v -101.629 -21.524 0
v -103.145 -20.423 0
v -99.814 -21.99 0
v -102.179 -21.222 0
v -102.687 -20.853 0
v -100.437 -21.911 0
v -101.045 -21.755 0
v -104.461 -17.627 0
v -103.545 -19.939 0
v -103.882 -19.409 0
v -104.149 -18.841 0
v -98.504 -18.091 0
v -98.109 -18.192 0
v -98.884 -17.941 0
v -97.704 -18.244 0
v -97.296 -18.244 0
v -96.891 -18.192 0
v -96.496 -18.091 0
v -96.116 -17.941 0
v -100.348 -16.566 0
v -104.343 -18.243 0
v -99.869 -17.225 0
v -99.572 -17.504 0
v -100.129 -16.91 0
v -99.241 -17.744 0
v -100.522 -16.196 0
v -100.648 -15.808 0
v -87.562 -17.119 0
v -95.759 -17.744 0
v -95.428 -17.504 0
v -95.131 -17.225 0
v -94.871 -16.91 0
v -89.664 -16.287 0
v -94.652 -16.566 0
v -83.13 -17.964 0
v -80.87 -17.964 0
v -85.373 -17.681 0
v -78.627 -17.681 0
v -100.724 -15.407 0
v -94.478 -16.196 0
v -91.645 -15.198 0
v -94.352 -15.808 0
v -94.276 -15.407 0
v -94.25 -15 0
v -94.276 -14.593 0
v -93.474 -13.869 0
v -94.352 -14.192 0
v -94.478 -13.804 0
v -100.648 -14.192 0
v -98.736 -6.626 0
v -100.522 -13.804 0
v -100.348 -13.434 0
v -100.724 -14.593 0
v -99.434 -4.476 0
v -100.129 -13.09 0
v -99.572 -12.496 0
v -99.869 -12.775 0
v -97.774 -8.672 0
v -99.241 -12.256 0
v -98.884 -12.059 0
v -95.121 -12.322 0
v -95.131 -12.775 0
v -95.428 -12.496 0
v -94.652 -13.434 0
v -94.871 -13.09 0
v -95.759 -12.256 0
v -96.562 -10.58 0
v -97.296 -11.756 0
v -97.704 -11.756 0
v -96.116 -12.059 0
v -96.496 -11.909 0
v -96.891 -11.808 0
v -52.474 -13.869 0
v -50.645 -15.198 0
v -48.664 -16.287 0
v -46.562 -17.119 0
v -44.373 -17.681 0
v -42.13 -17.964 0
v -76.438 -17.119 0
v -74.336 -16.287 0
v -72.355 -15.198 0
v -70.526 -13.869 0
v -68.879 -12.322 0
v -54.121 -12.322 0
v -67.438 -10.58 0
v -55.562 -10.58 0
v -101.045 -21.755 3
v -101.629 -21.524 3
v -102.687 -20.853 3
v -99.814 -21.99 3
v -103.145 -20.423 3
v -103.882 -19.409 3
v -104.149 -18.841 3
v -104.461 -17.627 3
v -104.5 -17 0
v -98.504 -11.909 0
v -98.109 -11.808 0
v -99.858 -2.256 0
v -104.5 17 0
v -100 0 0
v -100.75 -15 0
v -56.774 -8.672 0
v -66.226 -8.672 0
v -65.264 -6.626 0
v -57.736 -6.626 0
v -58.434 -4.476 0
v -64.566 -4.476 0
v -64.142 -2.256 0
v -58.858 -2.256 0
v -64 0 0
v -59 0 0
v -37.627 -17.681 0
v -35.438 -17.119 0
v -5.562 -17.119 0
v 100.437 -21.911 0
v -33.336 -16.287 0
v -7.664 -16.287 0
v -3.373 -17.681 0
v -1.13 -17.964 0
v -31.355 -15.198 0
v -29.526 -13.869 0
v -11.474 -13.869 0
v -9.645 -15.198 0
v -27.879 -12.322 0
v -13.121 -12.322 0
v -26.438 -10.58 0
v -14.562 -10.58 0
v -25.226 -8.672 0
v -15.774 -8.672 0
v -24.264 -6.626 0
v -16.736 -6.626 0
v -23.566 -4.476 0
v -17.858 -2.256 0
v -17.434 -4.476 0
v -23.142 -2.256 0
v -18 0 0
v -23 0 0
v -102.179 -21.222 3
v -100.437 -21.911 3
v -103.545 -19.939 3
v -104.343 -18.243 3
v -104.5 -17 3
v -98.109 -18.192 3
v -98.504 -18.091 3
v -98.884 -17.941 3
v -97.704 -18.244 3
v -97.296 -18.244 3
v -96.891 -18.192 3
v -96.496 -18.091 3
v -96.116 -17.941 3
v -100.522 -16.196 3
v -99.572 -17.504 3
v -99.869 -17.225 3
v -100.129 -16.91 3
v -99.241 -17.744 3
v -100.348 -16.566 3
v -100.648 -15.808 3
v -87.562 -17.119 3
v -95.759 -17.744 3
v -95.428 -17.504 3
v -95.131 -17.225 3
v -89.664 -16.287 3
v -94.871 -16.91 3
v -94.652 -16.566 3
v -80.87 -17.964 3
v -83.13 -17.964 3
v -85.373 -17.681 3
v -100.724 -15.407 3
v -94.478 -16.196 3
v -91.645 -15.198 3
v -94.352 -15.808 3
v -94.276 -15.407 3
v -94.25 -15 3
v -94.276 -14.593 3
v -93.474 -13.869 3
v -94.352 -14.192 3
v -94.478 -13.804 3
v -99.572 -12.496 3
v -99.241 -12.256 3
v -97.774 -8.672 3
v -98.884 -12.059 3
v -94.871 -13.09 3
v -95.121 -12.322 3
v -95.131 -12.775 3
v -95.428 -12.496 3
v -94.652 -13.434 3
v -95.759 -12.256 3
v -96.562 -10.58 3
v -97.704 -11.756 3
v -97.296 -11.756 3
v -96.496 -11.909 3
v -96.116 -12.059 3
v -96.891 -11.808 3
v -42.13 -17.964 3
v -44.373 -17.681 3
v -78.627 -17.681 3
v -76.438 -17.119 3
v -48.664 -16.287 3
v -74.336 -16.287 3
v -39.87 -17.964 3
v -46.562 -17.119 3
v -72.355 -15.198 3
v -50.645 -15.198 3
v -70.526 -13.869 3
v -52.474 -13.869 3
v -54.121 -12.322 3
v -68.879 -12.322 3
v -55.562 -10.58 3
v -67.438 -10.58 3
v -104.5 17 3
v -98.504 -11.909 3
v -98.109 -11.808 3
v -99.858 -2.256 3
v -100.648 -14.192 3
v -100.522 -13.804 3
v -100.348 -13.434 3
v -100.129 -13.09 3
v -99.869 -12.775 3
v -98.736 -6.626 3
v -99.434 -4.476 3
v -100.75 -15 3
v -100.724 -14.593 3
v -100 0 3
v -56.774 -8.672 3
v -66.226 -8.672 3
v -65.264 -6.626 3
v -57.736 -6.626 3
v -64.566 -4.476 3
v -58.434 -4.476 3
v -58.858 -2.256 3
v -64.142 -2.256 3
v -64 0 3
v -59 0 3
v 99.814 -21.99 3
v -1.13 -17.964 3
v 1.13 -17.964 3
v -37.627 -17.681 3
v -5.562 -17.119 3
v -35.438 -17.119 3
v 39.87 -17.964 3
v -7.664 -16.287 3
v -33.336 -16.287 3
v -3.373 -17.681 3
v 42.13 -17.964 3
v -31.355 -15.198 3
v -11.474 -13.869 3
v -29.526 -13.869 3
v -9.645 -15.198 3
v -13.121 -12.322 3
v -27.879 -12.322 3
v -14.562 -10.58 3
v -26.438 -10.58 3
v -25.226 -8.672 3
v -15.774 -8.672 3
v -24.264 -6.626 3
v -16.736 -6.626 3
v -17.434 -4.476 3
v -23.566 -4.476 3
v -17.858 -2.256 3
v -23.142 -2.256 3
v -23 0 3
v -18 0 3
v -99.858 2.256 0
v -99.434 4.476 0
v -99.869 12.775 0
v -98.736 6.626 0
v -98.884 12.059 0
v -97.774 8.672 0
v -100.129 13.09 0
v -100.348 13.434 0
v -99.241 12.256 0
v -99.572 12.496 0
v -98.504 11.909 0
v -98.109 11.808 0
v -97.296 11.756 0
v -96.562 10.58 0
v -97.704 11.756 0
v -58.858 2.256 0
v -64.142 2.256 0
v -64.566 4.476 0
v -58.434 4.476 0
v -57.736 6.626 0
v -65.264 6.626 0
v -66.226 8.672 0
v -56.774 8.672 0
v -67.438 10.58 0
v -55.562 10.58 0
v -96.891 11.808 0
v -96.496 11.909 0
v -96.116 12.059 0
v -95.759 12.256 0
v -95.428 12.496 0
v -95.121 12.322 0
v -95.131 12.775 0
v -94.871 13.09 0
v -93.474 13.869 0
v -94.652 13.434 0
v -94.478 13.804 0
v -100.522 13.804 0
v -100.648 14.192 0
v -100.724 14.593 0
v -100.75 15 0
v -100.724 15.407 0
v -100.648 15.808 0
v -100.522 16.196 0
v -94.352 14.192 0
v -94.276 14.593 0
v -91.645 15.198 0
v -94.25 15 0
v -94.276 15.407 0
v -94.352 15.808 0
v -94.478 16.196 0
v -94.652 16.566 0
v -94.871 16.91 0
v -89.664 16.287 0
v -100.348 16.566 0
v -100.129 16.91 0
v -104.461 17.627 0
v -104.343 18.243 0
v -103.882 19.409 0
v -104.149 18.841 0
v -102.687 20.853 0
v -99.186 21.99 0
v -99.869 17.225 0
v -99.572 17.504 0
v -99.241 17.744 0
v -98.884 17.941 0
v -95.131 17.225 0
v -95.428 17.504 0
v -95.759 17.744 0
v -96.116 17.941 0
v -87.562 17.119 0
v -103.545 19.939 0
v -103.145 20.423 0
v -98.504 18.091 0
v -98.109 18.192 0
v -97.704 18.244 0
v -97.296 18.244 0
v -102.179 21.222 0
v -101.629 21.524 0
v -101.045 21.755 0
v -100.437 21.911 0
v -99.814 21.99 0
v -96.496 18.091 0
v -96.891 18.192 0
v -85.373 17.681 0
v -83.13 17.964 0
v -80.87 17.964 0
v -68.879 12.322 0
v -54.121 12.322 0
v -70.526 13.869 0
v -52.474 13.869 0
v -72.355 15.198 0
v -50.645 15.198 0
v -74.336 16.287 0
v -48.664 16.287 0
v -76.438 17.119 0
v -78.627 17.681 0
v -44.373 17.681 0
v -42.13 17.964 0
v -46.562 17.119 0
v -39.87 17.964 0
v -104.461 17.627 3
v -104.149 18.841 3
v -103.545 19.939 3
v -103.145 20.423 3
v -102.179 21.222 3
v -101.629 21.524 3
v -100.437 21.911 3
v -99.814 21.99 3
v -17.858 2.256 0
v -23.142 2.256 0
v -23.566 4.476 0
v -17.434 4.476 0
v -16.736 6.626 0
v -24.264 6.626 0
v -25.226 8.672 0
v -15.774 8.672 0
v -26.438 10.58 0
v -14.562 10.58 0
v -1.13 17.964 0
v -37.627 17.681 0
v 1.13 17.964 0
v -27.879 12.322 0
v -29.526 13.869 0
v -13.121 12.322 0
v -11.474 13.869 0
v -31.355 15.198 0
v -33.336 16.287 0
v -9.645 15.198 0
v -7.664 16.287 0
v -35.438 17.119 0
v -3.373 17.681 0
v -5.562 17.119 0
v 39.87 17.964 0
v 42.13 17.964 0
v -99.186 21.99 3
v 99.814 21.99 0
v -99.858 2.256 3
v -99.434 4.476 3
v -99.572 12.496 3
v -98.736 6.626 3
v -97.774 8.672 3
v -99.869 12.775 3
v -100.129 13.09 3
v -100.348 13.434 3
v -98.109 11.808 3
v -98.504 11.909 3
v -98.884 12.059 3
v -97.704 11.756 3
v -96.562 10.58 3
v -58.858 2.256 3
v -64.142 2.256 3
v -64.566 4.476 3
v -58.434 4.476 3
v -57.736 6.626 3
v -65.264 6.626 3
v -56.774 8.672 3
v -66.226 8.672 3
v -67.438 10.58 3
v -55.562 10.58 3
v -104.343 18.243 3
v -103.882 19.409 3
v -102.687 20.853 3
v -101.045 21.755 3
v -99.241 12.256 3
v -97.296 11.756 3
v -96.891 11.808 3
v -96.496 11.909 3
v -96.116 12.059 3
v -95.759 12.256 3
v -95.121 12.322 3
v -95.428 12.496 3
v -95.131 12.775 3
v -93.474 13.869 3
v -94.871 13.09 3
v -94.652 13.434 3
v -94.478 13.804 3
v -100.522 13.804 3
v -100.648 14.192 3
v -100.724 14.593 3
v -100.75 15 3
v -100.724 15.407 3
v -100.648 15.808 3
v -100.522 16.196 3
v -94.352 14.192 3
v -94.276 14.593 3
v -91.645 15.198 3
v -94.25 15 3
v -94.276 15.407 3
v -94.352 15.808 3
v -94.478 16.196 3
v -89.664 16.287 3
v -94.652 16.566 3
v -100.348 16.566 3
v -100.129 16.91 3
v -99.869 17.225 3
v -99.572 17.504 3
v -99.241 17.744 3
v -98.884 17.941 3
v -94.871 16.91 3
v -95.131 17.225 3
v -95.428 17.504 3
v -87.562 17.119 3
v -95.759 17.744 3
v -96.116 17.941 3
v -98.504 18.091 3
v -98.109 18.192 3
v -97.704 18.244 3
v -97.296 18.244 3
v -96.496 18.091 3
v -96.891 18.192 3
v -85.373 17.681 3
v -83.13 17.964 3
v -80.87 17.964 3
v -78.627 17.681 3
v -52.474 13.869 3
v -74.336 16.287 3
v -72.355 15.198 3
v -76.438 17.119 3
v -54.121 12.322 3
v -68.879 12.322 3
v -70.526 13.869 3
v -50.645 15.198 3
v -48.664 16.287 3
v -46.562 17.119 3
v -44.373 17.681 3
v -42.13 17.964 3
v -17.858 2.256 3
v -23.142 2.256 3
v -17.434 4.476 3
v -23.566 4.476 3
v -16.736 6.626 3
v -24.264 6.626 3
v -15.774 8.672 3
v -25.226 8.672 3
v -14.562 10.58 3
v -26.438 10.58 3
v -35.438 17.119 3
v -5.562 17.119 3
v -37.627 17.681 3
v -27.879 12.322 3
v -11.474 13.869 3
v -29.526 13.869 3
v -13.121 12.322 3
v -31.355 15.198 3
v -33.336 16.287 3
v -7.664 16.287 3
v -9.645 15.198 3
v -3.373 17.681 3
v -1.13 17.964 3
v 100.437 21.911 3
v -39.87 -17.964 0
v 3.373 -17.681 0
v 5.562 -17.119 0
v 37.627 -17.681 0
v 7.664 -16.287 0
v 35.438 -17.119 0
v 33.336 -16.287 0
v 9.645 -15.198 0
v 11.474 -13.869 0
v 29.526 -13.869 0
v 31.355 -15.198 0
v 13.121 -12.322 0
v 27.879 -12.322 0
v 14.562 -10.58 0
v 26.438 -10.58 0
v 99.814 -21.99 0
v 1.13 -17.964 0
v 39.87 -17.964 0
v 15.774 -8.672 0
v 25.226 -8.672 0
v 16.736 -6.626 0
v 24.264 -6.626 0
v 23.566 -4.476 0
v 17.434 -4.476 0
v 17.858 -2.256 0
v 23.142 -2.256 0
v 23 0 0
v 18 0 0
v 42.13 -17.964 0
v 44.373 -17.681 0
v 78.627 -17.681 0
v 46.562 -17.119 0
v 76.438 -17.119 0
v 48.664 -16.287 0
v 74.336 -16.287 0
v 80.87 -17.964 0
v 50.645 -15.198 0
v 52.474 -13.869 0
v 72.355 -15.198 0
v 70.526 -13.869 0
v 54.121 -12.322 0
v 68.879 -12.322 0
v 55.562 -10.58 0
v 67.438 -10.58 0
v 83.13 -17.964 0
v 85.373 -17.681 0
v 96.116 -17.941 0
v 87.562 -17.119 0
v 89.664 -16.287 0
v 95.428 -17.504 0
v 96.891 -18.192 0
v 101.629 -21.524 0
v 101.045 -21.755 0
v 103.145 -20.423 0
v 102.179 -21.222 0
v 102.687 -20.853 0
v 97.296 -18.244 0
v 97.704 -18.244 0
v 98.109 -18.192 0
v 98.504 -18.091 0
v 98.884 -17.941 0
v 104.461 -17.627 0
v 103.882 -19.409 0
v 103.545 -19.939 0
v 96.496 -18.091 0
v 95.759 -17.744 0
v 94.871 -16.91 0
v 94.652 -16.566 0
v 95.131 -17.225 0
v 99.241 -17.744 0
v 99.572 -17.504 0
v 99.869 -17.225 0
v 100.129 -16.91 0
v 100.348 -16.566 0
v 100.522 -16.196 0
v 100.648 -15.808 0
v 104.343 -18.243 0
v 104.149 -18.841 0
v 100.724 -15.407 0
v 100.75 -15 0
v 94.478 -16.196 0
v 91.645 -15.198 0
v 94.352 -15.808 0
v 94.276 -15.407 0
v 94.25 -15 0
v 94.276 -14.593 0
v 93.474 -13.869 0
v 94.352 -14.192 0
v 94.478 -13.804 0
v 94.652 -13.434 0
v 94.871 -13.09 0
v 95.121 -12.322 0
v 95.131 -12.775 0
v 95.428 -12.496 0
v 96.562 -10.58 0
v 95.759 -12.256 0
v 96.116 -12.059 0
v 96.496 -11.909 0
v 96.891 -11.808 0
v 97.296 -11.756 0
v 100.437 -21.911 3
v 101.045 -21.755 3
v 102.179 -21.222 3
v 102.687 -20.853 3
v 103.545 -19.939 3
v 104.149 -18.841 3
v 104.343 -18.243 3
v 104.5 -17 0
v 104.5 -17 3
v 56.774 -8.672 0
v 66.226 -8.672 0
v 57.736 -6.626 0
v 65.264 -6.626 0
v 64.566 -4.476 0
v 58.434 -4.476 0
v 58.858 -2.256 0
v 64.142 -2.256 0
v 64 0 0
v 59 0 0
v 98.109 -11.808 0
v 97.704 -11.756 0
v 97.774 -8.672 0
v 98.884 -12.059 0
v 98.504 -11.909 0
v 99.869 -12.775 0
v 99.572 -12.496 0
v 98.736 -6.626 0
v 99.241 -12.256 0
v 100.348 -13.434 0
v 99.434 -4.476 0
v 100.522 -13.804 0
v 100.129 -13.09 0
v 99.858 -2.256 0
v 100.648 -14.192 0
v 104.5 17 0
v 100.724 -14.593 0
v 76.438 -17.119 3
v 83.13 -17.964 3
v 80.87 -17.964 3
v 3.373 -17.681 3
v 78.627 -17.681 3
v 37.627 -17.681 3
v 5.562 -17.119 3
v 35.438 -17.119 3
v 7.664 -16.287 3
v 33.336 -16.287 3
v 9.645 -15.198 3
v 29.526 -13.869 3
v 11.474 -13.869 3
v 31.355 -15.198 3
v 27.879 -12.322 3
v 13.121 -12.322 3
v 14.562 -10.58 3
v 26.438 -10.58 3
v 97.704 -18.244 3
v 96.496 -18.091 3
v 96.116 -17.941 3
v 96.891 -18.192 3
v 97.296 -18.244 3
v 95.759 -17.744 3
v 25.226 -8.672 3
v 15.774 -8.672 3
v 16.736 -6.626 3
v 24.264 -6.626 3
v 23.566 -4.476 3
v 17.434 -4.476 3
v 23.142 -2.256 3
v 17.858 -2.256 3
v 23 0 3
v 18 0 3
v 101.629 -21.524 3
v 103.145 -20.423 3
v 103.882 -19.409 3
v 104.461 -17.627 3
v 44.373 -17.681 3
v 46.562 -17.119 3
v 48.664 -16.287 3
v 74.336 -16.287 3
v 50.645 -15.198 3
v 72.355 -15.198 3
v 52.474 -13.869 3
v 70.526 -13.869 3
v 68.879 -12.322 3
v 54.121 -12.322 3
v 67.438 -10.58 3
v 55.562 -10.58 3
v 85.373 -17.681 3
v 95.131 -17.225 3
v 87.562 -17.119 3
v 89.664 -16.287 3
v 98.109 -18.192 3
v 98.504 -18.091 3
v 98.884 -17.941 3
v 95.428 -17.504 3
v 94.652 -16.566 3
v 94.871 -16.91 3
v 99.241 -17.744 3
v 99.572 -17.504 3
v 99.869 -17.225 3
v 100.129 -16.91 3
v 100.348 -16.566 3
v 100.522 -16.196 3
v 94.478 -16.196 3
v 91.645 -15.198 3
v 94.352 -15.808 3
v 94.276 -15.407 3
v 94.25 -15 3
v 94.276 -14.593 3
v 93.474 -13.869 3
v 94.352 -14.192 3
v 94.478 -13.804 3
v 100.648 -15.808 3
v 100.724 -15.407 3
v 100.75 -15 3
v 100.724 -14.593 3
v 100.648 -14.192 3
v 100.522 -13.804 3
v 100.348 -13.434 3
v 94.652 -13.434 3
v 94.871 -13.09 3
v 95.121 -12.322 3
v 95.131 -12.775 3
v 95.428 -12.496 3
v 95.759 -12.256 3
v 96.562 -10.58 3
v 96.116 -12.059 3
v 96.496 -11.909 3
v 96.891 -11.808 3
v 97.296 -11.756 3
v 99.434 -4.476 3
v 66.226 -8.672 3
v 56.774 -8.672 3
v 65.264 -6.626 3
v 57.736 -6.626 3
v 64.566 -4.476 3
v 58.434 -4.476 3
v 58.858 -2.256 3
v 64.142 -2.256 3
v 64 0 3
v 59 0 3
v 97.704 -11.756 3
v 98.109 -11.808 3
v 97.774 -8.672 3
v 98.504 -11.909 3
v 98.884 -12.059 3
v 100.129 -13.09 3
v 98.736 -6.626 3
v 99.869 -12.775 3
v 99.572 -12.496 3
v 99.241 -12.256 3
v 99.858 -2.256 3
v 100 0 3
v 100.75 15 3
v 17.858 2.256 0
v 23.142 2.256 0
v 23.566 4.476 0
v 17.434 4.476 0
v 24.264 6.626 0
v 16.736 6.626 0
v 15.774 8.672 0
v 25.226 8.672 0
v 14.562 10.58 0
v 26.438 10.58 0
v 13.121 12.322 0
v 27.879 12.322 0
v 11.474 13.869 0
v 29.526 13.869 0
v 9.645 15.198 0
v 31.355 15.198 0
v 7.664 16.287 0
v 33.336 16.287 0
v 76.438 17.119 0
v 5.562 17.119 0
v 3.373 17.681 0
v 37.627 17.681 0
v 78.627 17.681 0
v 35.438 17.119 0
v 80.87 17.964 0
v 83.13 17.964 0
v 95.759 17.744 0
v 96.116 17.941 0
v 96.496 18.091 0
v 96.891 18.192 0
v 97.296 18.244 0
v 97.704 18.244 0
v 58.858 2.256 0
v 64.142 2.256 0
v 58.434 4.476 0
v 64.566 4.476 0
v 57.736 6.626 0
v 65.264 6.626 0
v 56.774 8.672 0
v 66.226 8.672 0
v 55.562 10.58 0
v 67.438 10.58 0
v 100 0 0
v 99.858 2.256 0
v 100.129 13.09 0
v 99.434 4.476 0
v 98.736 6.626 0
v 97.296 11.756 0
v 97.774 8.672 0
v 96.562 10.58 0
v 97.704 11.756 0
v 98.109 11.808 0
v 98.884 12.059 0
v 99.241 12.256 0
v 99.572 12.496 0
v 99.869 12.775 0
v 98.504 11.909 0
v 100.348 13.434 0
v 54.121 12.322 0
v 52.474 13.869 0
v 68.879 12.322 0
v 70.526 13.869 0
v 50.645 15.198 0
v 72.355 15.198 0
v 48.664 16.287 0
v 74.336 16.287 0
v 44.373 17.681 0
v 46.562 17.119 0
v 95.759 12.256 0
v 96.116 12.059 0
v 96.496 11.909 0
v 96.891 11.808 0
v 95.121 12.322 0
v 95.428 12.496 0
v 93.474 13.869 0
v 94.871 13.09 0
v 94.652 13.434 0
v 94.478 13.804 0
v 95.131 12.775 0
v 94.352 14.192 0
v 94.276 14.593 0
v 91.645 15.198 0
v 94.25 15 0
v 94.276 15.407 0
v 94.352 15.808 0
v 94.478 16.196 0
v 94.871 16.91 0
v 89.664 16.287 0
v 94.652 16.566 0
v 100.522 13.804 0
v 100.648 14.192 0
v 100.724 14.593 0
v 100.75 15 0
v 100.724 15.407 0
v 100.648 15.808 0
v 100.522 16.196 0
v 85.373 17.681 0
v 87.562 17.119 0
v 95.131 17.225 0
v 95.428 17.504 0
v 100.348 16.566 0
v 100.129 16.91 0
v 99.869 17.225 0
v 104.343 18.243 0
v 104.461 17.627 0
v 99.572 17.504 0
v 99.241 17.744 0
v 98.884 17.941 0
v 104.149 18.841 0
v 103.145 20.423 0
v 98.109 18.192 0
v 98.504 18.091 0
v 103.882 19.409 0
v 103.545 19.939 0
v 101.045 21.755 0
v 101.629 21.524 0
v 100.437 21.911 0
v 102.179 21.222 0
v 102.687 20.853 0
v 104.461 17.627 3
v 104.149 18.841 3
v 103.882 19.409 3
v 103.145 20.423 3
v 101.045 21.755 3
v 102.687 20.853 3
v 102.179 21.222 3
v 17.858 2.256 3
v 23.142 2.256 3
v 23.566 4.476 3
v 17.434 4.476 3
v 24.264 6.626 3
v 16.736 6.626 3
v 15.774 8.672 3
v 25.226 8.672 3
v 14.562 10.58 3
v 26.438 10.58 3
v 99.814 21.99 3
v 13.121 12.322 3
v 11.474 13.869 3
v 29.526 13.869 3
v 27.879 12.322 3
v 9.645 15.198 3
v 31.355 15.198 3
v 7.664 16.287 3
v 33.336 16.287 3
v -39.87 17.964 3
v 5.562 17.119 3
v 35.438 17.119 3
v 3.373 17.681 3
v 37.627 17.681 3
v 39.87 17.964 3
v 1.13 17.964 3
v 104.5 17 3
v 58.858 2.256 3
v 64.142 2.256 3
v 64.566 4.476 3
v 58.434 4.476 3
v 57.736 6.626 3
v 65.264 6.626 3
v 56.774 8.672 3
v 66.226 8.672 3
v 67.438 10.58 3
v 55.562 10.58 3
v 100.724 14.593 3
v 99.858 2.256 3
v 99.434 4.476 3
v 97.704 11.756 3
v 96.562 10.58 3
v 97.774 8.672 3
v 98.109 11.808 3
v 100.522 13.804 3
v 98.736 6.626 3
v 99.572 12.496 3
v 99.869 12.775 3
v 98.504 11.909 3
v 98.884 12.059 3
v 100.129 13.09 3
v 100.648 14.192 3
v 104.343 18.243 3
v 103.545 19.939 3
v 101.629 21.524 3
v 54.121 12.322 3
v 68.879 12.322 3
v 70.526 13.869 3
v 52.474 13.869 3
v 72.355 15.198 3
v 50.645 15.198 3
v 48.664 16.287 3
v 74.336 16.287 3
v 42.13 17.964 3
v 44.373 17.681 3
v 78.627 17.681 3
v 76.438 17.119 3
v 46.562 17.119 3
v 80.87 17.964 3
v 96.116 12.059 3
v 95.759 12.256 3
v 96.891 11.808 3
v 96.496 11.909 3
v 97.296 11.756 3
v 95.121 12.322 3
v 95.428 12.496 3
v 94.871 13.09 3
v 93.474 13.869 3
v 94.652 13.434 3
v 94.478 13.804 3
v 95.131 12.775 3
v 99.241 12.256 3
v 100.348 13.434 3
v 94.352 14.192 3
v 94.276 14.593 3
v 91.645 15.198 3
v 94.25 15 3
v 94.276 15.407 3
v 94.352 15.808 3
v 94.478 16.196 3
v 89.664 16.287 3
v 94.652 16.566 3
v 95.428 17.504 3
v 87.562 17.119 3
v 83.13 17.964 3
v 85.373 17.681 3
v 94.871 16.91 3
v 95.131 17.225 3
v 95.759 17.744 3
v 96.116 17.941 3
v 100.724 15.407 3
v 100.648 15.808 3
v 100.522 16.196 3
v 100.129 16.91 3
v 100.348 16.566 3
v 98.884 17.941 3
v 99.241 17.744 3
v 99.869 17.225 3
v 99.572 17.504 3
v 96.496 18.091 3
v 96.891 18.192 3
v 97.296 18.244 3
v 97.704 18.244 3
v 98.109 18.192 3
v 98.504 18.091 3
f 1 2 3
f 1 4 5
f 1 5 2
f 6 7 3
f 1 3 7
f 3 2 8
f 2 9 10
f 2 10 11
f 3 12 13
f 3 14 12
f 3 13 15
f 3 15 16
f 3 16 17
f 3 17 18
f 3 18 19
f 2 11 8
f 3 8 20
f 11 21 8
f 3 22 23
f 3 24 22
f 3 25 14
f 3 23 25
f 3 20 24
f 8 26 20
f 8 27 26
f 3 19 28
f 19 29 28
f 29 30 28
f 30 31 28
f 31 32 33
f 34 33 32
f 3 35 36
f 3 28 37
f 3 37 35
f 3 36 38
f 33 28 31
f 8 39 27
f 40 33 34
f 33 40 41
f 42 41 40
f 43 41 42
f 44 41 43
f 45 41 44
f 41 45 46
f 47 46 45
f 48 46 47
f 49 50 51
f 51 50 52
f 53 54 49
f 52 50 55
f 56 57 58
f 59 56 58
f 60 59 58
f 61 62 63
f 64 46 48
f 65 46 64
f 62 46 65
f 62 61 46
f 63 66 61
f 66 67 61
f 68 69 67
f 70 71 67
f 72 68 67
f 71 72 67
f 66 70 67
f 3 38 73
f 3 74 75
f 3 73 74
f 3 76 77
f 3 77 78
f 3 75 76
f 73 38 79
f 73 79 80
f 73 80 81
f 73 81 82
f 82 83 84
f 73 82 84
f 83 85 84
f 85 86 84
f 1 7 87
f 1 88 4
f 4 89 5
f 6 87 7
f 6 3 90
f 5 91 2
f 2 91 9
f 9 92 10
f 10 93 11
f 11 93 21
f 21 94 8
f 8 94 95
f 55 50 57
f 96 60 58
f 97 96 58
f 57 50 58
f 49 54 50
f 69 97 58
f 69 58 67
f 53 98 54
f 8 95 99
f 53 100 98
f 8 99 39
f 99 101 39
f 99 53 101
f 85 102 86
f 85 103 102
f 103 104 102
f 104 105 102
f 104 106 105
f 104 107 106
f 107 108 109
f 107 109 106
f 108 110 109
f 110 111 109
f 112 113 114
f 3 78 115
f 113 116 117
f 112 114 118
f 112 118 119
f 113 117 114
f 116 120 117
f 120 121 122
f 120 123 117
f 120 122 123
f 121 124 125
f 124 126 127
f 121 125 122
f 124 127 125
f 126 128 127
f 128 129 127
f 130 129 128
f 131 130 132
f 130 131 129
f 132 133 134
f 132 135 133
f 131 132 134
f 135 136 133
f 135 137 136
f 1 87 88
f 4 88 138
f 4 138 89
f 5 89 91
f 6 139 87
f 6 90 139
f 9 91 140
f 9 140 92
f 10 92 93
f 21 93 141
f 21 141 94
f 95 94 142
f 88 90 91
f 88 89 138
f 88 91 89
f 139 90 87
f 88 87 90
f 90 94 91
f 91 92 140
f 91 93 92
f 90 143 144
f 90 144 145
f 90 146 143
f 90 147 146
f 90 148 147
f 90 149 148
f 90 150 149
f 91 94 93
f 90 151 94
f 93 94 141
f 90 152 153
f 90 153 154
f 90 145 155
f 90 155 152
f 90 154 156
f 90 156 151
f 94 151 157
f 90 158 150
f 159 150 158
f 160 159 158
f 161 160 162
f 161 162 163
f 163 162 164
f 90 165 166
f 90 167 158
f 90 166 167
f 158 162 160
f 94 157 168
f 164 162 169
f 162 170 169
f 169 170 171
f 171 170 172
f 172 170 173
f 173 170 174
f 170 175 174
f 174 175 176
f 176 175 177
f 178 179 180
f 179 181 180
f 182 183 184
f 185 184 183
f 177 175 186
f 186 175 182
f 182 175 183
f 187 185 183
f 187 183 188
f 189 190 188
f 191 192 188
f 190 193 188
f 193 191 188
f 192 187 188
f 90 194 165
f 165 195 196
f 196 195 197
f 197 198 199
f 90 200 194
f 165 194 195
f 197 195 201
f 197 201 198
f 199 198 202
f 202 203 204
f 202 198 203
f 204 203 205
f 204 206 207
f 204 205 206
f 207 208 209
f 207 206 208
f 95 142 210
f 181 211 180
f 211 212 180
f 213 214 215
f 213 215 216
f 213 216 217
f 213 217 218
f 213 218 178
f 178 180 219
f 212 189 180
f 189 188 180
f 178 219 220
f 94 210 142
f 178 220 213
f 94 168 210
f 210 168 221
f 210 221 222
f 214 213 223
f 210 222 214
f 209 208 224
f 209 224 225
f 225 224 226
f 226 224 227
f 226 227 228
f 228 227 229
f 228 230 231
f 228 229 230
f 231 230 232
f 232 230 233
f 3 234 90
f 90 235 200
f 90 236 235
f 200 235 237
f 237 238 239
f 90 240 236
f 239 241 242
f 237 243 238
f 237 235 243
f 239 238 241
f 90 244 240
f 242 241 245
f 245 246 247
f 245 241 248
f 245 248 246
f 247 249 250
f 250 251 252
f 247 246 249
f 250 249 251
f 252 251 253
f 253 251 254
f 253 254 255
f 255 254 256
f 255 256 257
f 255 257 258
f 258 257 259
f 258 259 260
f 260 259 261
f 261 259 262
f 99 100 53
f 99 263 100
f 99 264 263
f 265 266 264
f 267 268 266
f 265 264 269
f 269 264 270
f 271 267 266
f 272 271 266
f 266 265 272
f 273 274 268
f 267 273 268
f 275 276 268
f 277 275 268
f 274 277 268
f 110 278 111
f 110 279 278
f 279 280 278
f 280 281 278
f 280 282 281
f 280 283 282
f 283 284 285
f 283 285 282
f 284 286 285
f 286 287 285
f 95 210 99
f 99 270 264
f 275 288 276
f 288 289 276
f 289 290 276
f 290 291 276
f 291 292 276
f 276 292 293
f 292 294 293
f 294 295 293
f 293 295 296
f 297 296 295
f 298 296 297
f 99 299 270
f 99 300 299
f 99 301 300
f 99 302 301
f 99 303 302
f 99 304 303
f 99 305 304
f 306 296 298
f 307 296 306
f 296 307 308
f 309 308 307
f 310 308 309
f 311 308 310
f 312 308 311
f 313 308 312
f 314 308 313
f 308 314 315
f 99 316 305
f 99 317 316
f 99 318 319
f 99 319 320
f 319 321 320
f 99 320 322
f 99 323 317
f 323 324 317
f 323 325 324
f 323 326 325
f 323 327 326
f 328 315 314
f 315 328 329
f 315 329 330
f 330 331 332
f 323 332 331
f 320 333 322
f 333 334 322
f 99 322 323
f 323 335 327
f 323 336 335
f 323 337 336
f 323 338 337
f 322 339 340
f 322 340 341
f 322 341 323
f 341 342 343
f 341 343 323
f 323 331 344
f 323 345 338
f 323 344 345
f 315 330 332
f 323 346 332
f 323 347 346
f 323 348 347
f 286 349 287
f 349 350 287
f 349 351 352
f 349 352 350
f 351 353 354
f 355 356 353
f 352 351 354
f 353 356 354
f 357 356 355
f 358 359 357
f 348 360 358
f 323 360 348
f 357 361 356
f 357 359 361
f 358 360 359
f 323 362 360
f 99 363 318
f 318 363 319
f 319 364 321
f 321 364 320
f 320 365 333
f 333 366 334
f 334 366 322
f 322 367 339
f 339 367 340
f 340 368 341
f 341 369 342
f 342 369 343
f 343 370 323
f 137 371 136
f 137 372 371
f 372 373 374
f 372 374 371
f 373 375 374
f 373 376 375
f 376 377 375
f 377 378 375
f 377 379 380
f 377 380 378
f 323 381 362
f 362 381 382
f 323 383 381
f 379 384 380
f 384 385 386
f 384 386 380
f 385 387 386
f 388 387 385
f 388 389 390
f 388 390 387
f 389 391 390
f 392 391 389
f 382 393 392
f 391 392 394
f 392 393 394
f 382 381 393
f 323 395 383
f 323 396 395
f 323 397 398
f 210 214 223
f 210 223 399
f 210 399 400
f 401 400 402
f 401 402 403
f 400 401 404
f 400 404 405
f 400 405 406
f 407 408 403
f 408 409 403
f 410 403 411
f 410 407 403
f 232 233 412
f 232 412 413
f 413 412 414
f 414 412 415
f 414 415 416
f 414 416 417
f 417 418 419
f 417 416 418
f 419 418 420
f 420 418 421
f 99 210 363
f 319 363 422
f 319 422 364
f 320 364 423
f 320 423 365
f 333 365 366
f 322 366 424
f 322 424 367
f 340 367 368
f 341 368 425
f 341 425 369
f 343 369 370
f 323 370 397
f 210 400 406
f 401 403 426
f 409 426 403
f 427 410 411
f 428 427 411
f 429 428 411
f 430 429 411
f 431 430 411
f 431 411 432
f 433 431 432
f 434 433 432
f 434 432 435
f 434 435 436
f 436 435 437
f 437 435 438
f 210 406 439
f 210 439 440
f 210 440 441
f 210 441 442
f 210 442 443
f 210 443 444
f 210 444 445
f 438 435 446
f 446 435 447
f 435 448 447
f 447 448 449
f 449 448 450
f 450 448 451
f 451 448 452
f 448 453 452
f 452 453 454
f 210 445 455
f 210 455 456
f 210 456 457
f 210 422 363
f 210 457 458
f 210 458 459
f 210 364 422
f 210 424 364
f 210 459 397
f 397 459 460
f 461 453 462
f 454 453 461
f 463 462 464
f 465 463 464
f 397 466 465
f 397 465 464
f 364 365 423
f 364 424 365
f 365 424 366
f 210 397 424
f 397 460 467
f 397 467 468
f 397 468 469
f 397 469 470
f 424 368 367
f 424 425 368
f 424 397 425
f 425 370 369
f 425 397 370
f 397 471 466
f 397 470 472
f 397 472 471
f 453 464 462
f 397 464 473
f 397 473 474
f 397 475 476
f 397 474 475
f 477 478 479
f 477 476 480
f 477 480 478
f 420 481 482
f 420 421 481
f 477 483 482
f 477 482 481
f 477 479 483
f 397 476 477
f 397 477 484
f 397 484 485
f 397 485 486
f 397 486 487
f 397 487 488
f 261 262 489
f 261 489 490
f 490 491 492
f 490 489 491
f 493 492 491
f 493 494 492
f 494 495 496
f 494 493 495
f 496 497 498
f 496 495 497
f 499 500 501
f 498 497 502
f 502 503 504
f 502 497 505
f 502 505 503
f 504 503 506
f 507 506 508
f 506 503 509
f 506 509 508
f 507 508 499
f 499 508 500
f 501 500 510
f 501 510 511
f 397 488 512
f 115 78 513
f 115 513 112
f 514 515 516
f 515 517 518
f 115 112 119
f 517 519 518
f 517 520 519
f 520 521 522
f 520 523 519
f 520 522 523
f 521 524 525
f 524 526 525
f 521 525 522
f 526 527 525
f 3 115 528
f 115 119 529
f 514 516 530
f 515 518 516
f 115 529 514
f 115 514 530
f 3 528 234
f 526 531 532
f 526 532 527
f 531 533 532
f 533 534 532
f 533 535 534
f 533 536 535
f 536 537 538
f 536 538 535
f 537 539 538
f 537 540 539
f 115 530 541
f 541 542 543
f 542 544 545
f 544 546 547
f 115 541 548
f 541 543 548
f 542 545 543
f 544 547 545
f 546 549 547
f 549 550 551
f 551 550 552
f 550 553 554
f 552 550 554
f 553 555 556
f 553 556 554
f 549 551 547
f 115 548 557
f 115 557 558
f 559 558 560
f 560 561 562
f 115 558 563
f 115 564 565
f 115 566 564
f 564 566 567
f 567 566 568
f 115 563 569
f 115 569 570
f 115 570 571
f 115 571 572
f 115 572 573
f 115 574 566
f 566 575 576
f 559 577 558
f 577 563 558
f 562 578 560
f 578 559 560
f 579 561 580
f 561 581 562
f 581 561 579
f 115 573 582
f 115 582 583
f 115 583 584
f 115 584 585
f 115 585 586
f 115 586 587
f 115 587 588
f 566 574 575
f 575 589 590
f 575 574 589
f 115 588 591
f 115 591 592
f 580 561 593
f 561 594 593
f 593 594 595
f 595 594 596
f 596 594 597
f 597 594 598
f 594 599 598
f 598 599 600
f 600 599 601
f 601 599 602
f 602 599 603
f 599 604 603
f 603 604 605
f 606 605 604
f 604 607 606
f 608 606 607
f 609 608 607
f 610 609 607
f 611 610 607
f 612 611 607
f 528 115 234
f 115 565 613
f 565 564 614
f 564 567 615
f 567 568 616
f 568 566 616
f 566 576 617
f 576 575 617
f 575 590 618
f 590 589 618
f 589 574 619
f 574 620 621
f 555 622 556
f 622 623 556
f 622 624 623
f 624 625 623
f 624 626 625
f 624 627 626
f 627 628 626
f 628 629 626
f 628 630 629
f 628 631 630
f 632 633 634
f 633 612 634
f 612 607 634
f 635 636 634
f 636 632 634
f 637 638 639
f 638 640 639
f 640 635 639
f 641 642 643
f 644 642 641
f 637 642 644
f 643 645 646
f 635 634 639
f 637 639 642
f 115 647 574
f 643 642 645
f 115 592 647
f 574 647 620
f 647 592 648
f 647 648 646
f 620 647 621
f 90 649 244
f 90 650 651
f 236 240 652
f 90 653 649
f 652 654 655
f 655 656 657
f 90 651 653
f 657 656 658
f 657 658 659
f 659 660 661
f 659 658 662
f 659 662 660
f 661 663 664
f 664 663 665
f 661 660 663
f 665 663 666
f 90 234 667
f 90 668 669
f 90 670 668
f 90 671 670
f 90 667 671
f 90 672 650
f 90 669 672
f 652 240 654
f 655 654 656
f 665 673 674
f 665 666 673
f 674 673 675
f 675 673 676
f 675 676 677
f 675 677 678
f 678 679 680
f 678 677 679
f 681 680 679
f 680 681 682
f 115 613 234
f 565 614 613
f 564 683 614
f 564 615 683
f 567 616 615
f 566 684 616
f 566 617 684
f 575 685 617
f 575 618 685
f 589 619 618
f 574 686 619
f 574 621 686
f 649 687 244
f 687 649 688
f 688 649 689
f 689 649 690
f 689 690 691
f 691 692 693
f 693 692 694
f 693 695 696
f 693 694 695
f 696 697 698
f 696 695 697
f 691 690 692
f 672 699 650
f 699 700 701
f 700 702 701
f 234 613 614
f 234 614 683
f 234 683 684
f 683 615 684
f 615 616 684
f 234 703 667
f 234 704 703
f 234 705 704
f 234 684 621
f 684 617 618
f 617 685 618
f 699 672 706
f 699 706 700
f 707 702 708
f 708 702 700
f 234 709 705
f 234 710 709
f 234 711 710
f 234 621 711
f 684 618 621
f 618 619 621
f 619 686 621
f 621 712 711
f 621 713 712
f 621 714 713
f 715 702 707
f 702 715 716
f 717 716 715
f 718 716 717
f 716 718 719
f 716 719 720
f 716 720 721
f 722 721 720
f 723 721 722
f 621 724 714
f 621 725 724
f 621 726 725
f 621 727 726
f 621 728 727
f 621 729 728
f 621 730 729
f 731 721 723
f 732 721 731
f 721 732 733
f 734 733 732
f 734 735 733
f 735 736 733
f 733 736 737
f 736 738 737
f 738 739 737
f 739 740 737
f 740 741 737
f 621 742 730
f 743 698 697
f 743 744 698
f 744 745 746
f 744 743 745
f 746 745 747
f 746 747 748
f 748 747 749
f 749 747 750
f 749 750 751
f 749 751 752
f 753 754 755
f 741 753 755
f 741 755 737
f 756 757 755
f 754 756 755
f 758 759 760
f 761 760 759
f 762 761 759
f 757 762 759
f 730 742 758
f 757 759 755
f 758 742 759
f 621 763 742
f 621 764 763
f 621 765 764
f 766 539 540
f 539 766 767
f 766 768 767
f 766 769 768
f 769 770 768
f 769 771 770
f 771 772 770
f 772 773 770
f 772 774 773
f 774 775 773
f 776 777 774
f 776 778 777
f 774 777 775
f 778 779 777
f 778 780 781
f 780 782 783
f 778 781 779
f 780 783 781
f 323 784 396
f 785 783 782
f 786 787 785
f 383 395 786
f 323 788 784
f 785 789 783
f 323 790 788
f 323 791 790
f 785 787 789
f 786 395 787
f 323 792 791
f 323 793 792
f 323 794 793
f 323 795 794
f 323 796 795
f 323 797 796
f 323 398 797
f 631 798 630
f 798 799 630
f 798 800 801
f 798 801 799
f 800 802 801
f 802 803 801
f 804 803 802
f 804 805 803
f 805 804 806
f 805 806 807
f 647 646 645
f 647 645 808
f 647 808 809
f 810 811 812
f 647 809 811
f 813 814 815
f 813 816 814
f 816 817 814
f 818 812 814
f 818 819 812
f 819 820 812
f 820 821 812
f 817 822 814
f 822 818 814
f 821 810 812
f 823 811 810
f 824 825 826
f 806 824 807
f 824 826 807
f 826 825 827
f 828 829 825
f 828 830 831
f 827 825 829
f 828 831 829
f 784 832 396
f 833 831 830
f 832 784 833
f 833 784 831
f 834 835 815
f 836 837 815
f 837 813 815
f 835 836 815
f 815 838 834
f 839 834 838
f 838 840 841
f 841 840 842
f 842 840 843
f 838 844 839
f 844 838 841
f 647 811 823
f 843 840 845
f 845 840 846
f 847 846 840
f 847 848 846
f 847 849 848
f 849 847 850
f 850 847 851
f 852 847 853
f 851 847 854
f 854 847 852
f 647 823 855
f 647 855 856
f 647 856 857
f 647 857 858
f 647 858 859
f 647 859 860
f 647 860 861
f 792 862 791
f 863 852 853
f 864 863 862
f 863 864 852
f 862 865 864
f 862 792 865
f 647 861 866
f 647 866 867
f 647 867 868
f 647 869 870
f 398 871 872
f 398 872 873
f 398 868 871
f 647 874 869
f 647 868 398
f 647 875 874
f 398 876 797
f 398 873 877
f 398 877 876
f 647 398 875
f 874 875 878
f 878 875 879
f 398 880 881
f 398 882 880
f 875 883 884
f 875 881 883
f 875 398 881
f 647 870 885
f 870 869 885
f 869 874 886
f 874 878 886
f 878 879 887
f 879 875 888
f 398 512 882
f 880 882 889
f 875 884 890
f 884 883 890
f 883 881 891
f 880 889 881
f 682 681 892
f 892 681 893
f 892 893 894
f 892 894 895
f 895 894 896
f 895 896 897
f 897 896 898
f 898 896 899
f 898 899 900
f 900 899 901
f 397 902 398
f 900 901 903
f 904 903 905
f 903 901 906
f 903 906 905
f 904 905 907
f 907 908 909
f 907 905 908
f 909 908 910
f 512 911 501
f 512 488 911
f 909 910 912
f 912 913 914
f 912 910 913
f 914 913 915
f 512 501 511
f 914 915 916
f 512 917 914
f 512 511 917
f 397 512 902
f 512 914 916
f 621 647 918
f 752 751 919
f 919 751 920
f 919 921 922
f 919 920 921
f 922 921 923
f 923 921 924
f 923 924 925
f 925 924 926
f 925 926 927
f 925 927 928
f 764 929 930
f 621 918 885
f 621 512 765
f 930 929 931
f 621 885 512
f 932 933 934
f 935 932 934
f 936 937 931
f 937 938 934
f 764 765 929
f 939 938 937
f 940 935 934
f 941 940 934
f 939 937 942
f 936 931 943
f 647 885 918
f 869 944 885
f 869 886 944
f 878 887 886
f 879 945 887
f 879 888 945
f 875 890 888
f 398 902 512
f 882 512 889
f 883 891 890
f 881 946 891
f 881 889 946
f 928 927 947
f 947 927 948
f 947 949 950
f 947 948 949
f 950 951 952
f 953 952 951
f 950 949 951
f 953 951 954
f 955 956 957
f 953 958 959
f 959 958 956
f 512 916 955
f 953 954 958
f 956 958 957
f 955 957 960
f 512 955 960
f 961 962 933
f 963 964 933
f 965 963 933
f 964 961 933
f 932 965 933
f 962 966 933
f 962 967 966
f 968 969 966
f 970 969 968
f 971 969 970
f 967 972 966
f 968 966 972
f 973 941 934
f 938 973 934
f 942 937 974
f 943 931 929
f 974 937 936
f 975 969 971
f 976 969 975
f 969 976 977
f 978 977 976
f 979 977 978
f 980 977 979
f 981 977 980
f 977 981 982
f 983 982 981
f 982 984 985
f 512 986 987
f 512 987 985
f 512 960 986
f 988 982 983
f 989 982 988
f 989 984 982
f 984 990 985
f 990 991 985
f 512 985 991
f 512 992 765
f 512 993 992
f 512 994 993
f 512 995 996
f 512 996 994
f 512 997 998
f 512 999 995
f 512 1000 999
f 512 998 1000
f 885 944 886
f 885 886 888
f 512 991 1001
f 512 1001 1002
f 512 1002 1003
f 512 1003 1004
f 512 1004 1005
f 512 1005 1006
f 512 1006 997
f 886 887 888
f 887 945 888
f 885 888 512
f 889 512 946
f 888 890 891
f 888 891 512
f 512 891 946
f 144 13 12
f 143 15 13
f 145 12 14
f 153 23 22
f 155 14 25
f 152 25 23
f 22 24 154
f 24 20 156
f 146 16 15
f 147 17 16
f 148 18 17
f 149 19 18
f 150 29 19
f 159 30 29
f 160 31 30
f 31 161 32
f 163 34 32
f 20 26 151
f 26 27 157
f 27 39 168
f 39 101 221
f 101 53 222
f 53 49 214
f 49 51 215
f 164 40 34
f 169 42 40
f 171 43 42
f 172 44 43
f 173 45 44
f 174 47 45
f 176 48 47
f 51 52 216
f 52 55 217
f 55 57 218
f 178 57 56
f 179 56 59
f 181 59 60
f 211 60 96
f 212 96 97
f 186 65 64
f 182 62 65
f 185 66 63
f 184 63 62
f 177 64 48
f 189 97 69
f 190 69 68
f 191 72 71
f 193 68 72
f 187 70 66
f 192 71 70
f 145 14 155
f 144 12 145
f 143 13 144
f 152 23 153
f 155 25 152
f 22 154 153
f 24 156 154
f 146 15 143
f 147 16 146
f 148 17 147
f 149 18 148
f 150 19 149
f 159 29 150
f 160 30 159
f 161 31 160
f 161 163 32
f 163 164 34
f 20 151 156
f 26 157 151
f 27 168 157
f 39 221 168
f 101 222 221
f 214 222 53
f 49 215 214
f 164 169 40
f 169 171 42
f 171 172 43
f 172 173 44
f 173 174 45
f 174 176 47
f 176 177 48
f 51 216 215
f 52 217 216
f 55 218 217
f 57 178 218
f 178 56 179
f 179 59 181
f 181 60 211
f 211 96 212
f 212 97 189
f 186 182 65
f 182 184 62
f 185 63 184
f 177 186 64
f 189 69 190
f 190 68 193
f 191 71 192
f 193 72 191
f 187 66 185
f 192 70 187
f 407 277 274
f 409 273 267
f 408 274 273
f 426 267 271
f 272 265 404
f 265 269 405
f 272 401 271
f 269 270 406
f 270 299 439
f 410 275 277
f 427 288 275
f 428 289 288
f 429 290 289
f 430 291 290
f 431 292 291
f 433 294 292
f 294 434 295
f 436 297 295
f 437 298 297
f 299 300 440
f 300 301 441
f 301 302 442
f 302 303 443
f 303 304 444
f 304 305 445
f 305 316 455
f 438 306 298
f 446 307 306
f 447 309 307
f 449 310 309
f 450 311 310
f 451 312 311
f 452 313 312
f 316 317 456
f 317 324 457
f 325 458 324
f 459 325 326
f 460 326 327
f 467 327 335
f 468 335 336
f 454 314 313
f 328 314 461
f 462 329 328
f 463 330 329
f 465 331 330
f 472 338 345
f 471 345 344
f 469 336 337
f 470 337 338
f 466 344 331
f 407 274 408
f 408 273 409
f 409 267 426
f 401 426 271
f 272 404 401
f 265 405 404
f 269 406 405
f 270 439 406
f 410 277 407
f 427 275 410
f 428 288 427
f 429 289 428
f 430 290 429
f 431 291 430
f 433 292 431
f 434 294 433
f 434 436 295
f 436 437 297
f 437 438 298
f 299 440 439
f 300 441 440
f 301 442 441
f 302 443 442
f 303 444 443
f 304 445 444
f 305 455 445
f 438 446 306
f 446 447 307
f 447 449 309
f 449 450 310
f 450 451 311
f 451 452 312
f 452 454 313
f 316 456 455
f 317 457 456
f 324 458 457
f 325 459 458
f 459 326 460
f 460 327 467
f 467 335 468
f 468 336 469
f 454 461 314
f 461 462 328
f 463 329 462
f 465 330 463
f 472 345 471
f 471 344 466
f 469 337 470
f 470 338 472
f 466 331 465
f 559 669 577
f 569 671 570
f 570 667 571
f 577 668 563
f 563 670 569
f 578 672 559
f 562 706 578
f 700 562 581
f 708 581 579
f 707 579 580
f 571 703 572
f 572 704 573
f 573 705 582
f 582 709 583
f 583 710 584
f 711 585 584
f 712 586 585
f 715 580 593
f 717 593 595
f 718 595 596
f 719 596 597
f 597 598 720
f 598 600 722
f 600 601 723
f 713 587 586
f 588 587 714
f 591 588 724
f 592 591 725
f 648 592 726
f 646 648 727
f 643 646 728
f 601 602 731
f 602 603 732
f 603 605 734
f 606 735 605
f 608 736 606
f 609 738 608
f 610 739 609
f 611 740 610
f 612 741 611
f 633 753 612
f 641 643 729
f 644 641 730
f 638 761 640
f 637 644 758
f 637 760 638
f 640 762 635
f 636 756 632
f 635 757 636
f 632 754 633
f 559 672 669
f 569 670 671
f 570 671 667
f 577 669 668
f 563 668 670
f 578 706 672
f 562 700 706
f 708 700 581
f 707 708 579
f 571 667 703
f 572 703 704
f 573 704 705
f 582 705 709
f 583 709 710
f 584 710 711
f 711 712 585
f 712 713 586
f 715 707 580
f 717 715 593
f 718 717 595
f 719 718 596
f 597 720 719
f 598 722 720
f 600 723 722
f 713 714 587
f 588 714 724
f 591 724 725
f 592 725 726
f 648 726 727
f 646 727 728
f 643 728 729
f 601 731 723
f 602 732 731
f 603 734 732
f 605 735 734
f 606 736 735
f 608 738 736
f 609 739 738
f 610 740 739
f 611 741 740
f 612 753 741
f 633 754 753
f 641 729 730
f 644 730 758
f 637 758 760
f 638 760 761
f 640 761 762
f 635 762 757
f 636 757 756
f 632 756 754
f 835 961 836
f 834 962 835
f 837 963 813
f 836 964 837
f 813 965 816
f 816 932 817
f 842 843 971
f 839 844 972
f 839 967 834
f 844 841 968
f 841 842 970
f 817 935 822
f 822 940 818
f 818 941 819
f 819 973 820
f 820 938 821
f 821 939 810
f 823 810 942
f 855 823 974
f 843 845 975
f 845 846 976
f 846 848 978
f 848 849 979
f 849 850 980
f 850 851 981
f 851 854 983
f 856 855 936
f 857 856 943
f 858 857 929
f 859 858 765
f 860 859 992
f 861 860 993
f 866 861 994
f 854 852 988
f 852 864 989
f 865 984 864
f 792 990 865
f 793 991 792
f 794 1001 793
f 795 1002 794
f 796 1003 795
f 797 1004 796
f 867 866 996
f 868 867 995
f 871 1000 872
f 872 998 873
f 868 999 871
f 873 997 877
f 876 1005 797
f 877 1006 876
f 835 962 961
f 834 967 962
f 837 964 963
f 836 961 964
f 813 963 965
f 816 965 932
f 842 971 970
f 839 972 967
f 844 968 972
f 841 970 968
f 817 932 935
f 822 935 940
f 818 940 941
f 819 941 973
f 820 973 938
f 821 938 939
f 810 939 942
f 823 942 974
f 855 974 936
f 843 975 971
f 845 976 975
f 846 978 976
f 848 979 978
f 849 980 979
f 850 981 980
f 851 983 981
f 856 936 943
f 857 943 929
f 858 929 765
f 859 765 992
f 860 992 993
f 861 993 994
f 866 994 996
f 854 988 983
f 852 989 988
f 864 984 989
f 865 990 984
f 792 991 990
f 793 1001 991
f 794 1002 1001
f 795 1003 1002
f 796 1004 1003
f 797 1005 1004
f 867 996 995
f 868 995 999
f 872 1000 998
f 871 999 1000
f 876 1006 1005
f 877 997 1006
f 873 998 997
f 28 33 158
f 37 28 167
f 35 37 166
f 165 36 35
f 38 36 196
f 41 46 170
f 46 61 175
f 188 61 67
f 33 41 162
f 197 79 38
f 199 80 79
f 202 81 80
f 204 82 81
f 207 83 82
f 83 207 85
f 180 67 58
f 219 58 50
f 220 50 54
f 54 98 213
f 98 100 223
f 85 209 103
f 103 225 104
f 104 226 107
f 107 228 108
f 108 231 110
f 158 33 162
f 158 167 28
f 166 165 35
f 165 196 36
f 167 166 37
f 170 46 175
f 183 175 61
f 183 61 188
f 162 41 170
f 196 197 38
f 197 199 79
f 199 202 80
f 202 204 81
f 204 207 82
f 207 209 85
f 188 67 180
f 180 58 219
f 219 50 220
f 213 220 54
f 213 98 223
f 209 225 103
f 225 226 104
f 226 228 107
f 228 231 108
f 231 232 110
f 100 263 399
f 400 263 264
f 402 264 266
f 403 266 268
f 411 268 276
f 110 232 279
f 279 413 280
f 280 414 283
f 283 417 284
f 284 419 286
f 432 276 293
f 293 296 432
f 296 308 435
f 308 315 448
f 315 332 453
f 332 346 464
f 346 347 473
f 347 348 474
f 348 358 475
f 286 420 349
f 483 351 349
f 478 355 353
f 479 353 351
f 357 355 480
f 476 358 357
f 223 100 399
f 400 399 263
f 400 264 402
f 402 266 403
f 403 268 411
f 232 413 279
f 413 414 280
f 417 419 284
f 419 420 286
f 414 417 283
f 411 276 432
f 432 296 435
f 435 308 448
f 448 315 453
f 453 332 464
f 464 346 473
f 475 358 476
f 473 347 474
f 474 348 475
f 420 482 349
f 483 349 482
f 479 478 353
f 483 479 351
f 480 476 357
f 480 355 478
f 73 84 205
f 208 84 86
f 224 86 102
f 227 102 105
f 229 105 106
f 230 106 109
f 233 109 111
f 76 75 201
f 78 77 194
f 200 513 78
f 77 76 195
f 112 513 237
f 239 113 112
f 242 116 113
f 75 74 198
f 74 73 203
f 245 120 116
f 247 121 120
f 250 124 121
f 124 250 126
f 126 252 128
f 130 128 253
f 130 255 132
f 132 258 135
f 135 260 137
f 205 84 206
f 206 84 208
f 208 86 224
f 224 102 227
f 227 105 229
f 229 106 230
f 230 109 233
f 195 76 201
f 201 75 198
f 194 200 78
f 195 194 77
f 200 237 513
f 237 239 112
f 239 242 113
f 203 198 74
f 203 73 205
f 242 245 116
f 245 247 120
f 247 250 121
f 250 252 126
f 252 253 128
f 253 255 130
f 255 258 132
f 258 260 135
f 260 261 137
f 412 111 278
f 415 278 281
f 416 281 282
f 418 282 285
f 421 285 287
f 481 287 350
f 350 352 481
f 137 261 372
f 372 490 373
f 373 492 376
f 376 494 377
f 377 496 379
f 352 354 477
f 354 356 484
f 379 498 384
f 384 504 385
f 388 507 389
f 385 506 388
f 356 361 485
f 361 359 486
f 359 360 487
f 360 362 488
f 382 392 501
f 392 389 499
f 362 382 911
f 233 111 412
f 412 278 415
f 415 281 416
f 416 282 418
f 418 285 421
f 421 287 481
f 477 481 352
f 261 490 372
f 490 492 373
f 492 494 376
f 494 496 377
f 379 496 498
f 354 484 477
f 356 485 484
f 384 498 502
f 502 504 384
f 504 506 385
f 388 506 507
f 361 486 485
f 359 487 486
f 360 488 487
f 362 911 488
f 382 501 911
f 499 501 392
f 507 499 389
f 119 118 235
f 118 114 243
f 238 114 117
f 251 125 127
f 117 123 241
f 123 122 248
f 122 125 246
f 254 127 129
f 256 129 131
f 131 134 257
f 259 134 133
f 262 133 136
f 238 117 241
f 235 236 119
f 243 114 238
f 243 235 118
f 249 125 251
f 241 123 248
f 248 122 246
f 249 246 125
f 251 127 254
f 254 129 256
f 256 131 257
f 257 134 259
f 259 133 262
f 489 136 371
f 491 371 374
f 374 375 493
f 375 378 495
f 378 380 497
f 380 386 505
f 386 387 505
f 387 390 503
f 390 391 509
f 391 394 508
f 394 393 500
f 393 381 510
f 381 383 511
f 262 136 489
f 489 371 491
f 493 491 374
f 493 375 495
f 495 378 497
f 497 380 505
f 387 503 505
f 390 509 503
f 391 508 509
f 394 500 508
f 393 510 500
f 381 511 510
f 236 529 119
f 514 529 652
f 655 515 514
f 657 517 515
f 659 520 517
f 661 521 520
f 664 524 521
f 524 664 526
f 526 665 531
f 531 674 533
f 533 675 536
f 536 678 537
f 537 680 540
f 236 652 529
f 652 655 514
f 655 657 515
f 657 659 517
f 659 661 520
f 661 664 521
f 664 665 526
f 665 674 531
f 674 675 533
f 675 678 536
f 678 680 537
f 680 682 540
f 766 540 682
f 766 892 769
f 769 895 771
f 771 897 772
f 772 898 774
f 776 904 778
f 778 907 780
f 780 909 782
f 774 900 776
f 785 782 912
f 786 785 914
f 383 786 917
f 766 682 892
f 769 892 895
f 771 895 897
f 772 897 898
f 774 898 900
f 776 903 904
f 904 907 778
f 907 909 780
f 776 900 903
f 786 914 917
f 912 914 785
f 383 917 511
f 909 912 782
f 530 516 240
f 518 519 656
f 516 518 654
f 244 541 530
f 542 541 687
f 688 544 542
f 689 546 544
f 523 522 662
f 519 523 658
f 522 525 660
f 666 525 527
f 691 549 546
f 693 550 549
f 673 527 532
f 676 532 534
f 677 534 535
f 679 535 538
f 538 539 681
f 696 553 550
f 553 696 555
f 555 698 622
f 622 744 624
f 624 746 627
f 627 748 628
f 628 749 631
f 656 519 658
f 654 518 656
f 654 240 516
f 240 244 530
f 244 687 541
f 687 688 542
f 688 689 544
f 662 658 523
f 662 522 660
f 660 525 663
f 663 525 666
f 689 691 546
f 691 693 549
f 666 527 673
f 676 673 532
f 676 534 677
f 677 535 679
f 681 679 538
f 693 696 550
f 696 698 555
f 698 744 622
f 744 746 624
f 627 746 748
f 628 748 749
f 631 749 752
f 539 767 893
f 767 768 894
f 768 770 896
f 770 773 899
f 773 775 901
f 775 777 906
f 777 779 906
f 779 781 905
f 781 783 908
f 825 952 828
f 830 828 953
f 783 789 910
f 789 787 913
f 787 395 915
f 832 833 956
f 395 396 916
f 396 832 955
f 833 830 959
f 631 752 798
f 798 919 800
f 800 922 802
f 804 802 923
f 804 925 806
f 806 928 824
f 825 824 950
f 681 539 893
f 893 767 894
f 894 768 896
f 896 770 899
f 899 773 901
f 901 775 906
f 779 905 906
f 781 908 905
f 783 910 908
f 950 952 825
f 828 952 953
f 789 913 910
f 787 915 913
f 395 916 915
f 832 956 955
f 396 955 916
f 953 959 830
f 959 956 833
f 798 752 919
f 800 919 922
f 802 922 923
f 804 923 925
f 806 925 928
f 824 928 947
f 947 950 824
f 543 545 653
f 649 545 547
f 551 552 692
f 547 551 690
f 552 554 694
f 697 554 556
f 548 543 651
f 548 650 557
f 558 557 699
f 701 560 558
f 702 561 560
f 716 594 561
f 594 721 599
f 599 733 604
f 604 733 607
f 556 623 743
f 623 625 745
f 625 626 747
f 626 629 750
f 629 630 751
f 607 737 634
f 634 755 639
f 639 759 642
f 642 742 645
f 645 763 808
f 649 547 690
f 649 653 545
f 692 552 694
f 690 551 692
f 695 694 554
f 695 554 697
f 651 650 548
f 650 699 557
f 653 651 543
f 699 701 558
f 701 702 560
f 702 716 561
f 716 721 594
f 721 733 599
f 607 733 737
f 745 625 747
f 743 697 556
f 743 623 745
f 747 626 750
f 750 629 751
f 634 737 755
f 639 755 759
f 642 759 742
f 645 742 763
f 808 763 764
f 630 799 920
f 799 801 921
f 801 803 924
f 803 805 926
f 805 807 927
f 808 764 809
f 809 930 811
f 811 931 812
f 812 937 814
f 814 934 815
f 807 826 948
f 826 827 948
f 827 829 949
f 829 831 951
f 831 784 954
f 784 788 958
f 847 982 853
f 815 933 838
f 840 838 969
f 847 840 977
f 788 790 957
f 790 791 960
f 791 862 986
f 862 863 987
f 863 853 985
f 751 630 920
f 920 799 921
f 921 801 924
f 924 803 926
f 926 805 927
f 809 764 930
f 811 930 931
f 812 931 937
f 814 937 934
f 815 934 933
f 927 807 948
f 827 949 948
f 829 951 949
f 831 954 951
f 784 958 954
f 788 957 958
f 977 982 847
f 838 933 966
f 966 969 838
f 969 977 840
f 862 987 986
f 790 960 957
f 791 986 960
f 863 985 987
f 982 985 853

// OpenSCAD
$fn = 50;

difference() {
	union() {
		hull() {
			translate(v = [-99.5, 17.0, 0]) {
				cylinder(h = 3, r = 5);
			}
			translate(v = [99.5, 17.0, 0]) {
				cylinder(h = 3, r = 5);
			}
			translate(v = [-99.5, -17.0, 0]) {
				cylinder(h = 3, r = 5);
			}
			translate(v = [99.5, -17.0, 0]) {
				cylinder(h = 3, r = 5);
			}
		}
	}
	union() {
		translate(v = [-97.5, -15.0, -100.0]) {
			cylinder(h = 200, r = 3.25);
		}
		translate(v = [-97.5, 15.0, -100.0]) {
			cylinder(h = 200, r = 3.25);
		}
		translate(v = [97.5, -15.0, -100.0]) {
			cylinder(h = 200, r = 3.25);
		}
		translate(v = [97.5, 15.0, -100.0]) {
			cylinder(h = 200, r = 3.25);
		}
		translate(v = [-97.5, -15.0, -100.0]) {
			cylinder(h = 200, r = 1.8);
		}
		translate(v = [-97.5, 15.0, -100.0]) {
			cylinder(h = 200, r = 1.8);
		}
		translate(v = [97.5, -15.0, -100.0]) {
			cylinder(h = 200, r = 1.8);
		}
		translate(v = [97.5, 15.0, -100.0]) {
			cylinder(h = 200, r = 1.8);
		}
		translate(v = [-82.0, 0, 0.0]) {
			cylinder(h = 3, r = 18.0);
		}
		translate(v = [-41.0, 0, 0.0]) {
			cylinder(h = 3, r = 18.0);
		}
		cylinder(h = 3, r = 18.0);
		translate(v = [41.0, 0, 0.0]) {
			cylinder(h = 3, r = 18.0);
		}
		translate(v = [82.0, 0, 0.0]) {
			cylinder(h = 3, r = 18.0);
		}
	}
}
